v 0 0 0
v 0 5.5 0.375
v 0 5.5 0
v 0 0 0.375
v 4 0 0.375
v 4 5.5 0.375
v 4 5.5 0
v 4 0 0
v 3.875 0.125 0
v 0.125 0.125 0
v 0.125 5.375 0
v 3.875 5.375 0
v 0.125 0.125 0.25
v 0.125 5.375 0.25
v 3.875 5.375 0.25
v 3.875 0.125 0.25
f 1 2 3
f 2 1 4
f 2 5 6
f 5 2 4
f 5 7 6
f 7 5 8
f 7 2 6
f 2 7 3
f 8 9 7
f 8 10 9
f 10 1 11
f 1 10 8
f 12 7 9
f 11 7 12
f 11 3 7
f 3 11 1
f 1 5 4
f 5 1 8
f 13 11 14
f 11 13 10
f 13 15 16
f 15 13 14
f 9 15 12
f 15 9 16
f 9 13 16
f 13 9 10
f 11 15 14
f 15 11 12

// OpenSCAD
difference() {
    union() {
        difference() {
            cube([4.0,5.5,0.375]);
            translate([0.125,0.125,0])
                cube([3.75,5.25,0.25]);
        }
    }
    translate([-10,-10,-5]) cube([20,20,5]);
}
